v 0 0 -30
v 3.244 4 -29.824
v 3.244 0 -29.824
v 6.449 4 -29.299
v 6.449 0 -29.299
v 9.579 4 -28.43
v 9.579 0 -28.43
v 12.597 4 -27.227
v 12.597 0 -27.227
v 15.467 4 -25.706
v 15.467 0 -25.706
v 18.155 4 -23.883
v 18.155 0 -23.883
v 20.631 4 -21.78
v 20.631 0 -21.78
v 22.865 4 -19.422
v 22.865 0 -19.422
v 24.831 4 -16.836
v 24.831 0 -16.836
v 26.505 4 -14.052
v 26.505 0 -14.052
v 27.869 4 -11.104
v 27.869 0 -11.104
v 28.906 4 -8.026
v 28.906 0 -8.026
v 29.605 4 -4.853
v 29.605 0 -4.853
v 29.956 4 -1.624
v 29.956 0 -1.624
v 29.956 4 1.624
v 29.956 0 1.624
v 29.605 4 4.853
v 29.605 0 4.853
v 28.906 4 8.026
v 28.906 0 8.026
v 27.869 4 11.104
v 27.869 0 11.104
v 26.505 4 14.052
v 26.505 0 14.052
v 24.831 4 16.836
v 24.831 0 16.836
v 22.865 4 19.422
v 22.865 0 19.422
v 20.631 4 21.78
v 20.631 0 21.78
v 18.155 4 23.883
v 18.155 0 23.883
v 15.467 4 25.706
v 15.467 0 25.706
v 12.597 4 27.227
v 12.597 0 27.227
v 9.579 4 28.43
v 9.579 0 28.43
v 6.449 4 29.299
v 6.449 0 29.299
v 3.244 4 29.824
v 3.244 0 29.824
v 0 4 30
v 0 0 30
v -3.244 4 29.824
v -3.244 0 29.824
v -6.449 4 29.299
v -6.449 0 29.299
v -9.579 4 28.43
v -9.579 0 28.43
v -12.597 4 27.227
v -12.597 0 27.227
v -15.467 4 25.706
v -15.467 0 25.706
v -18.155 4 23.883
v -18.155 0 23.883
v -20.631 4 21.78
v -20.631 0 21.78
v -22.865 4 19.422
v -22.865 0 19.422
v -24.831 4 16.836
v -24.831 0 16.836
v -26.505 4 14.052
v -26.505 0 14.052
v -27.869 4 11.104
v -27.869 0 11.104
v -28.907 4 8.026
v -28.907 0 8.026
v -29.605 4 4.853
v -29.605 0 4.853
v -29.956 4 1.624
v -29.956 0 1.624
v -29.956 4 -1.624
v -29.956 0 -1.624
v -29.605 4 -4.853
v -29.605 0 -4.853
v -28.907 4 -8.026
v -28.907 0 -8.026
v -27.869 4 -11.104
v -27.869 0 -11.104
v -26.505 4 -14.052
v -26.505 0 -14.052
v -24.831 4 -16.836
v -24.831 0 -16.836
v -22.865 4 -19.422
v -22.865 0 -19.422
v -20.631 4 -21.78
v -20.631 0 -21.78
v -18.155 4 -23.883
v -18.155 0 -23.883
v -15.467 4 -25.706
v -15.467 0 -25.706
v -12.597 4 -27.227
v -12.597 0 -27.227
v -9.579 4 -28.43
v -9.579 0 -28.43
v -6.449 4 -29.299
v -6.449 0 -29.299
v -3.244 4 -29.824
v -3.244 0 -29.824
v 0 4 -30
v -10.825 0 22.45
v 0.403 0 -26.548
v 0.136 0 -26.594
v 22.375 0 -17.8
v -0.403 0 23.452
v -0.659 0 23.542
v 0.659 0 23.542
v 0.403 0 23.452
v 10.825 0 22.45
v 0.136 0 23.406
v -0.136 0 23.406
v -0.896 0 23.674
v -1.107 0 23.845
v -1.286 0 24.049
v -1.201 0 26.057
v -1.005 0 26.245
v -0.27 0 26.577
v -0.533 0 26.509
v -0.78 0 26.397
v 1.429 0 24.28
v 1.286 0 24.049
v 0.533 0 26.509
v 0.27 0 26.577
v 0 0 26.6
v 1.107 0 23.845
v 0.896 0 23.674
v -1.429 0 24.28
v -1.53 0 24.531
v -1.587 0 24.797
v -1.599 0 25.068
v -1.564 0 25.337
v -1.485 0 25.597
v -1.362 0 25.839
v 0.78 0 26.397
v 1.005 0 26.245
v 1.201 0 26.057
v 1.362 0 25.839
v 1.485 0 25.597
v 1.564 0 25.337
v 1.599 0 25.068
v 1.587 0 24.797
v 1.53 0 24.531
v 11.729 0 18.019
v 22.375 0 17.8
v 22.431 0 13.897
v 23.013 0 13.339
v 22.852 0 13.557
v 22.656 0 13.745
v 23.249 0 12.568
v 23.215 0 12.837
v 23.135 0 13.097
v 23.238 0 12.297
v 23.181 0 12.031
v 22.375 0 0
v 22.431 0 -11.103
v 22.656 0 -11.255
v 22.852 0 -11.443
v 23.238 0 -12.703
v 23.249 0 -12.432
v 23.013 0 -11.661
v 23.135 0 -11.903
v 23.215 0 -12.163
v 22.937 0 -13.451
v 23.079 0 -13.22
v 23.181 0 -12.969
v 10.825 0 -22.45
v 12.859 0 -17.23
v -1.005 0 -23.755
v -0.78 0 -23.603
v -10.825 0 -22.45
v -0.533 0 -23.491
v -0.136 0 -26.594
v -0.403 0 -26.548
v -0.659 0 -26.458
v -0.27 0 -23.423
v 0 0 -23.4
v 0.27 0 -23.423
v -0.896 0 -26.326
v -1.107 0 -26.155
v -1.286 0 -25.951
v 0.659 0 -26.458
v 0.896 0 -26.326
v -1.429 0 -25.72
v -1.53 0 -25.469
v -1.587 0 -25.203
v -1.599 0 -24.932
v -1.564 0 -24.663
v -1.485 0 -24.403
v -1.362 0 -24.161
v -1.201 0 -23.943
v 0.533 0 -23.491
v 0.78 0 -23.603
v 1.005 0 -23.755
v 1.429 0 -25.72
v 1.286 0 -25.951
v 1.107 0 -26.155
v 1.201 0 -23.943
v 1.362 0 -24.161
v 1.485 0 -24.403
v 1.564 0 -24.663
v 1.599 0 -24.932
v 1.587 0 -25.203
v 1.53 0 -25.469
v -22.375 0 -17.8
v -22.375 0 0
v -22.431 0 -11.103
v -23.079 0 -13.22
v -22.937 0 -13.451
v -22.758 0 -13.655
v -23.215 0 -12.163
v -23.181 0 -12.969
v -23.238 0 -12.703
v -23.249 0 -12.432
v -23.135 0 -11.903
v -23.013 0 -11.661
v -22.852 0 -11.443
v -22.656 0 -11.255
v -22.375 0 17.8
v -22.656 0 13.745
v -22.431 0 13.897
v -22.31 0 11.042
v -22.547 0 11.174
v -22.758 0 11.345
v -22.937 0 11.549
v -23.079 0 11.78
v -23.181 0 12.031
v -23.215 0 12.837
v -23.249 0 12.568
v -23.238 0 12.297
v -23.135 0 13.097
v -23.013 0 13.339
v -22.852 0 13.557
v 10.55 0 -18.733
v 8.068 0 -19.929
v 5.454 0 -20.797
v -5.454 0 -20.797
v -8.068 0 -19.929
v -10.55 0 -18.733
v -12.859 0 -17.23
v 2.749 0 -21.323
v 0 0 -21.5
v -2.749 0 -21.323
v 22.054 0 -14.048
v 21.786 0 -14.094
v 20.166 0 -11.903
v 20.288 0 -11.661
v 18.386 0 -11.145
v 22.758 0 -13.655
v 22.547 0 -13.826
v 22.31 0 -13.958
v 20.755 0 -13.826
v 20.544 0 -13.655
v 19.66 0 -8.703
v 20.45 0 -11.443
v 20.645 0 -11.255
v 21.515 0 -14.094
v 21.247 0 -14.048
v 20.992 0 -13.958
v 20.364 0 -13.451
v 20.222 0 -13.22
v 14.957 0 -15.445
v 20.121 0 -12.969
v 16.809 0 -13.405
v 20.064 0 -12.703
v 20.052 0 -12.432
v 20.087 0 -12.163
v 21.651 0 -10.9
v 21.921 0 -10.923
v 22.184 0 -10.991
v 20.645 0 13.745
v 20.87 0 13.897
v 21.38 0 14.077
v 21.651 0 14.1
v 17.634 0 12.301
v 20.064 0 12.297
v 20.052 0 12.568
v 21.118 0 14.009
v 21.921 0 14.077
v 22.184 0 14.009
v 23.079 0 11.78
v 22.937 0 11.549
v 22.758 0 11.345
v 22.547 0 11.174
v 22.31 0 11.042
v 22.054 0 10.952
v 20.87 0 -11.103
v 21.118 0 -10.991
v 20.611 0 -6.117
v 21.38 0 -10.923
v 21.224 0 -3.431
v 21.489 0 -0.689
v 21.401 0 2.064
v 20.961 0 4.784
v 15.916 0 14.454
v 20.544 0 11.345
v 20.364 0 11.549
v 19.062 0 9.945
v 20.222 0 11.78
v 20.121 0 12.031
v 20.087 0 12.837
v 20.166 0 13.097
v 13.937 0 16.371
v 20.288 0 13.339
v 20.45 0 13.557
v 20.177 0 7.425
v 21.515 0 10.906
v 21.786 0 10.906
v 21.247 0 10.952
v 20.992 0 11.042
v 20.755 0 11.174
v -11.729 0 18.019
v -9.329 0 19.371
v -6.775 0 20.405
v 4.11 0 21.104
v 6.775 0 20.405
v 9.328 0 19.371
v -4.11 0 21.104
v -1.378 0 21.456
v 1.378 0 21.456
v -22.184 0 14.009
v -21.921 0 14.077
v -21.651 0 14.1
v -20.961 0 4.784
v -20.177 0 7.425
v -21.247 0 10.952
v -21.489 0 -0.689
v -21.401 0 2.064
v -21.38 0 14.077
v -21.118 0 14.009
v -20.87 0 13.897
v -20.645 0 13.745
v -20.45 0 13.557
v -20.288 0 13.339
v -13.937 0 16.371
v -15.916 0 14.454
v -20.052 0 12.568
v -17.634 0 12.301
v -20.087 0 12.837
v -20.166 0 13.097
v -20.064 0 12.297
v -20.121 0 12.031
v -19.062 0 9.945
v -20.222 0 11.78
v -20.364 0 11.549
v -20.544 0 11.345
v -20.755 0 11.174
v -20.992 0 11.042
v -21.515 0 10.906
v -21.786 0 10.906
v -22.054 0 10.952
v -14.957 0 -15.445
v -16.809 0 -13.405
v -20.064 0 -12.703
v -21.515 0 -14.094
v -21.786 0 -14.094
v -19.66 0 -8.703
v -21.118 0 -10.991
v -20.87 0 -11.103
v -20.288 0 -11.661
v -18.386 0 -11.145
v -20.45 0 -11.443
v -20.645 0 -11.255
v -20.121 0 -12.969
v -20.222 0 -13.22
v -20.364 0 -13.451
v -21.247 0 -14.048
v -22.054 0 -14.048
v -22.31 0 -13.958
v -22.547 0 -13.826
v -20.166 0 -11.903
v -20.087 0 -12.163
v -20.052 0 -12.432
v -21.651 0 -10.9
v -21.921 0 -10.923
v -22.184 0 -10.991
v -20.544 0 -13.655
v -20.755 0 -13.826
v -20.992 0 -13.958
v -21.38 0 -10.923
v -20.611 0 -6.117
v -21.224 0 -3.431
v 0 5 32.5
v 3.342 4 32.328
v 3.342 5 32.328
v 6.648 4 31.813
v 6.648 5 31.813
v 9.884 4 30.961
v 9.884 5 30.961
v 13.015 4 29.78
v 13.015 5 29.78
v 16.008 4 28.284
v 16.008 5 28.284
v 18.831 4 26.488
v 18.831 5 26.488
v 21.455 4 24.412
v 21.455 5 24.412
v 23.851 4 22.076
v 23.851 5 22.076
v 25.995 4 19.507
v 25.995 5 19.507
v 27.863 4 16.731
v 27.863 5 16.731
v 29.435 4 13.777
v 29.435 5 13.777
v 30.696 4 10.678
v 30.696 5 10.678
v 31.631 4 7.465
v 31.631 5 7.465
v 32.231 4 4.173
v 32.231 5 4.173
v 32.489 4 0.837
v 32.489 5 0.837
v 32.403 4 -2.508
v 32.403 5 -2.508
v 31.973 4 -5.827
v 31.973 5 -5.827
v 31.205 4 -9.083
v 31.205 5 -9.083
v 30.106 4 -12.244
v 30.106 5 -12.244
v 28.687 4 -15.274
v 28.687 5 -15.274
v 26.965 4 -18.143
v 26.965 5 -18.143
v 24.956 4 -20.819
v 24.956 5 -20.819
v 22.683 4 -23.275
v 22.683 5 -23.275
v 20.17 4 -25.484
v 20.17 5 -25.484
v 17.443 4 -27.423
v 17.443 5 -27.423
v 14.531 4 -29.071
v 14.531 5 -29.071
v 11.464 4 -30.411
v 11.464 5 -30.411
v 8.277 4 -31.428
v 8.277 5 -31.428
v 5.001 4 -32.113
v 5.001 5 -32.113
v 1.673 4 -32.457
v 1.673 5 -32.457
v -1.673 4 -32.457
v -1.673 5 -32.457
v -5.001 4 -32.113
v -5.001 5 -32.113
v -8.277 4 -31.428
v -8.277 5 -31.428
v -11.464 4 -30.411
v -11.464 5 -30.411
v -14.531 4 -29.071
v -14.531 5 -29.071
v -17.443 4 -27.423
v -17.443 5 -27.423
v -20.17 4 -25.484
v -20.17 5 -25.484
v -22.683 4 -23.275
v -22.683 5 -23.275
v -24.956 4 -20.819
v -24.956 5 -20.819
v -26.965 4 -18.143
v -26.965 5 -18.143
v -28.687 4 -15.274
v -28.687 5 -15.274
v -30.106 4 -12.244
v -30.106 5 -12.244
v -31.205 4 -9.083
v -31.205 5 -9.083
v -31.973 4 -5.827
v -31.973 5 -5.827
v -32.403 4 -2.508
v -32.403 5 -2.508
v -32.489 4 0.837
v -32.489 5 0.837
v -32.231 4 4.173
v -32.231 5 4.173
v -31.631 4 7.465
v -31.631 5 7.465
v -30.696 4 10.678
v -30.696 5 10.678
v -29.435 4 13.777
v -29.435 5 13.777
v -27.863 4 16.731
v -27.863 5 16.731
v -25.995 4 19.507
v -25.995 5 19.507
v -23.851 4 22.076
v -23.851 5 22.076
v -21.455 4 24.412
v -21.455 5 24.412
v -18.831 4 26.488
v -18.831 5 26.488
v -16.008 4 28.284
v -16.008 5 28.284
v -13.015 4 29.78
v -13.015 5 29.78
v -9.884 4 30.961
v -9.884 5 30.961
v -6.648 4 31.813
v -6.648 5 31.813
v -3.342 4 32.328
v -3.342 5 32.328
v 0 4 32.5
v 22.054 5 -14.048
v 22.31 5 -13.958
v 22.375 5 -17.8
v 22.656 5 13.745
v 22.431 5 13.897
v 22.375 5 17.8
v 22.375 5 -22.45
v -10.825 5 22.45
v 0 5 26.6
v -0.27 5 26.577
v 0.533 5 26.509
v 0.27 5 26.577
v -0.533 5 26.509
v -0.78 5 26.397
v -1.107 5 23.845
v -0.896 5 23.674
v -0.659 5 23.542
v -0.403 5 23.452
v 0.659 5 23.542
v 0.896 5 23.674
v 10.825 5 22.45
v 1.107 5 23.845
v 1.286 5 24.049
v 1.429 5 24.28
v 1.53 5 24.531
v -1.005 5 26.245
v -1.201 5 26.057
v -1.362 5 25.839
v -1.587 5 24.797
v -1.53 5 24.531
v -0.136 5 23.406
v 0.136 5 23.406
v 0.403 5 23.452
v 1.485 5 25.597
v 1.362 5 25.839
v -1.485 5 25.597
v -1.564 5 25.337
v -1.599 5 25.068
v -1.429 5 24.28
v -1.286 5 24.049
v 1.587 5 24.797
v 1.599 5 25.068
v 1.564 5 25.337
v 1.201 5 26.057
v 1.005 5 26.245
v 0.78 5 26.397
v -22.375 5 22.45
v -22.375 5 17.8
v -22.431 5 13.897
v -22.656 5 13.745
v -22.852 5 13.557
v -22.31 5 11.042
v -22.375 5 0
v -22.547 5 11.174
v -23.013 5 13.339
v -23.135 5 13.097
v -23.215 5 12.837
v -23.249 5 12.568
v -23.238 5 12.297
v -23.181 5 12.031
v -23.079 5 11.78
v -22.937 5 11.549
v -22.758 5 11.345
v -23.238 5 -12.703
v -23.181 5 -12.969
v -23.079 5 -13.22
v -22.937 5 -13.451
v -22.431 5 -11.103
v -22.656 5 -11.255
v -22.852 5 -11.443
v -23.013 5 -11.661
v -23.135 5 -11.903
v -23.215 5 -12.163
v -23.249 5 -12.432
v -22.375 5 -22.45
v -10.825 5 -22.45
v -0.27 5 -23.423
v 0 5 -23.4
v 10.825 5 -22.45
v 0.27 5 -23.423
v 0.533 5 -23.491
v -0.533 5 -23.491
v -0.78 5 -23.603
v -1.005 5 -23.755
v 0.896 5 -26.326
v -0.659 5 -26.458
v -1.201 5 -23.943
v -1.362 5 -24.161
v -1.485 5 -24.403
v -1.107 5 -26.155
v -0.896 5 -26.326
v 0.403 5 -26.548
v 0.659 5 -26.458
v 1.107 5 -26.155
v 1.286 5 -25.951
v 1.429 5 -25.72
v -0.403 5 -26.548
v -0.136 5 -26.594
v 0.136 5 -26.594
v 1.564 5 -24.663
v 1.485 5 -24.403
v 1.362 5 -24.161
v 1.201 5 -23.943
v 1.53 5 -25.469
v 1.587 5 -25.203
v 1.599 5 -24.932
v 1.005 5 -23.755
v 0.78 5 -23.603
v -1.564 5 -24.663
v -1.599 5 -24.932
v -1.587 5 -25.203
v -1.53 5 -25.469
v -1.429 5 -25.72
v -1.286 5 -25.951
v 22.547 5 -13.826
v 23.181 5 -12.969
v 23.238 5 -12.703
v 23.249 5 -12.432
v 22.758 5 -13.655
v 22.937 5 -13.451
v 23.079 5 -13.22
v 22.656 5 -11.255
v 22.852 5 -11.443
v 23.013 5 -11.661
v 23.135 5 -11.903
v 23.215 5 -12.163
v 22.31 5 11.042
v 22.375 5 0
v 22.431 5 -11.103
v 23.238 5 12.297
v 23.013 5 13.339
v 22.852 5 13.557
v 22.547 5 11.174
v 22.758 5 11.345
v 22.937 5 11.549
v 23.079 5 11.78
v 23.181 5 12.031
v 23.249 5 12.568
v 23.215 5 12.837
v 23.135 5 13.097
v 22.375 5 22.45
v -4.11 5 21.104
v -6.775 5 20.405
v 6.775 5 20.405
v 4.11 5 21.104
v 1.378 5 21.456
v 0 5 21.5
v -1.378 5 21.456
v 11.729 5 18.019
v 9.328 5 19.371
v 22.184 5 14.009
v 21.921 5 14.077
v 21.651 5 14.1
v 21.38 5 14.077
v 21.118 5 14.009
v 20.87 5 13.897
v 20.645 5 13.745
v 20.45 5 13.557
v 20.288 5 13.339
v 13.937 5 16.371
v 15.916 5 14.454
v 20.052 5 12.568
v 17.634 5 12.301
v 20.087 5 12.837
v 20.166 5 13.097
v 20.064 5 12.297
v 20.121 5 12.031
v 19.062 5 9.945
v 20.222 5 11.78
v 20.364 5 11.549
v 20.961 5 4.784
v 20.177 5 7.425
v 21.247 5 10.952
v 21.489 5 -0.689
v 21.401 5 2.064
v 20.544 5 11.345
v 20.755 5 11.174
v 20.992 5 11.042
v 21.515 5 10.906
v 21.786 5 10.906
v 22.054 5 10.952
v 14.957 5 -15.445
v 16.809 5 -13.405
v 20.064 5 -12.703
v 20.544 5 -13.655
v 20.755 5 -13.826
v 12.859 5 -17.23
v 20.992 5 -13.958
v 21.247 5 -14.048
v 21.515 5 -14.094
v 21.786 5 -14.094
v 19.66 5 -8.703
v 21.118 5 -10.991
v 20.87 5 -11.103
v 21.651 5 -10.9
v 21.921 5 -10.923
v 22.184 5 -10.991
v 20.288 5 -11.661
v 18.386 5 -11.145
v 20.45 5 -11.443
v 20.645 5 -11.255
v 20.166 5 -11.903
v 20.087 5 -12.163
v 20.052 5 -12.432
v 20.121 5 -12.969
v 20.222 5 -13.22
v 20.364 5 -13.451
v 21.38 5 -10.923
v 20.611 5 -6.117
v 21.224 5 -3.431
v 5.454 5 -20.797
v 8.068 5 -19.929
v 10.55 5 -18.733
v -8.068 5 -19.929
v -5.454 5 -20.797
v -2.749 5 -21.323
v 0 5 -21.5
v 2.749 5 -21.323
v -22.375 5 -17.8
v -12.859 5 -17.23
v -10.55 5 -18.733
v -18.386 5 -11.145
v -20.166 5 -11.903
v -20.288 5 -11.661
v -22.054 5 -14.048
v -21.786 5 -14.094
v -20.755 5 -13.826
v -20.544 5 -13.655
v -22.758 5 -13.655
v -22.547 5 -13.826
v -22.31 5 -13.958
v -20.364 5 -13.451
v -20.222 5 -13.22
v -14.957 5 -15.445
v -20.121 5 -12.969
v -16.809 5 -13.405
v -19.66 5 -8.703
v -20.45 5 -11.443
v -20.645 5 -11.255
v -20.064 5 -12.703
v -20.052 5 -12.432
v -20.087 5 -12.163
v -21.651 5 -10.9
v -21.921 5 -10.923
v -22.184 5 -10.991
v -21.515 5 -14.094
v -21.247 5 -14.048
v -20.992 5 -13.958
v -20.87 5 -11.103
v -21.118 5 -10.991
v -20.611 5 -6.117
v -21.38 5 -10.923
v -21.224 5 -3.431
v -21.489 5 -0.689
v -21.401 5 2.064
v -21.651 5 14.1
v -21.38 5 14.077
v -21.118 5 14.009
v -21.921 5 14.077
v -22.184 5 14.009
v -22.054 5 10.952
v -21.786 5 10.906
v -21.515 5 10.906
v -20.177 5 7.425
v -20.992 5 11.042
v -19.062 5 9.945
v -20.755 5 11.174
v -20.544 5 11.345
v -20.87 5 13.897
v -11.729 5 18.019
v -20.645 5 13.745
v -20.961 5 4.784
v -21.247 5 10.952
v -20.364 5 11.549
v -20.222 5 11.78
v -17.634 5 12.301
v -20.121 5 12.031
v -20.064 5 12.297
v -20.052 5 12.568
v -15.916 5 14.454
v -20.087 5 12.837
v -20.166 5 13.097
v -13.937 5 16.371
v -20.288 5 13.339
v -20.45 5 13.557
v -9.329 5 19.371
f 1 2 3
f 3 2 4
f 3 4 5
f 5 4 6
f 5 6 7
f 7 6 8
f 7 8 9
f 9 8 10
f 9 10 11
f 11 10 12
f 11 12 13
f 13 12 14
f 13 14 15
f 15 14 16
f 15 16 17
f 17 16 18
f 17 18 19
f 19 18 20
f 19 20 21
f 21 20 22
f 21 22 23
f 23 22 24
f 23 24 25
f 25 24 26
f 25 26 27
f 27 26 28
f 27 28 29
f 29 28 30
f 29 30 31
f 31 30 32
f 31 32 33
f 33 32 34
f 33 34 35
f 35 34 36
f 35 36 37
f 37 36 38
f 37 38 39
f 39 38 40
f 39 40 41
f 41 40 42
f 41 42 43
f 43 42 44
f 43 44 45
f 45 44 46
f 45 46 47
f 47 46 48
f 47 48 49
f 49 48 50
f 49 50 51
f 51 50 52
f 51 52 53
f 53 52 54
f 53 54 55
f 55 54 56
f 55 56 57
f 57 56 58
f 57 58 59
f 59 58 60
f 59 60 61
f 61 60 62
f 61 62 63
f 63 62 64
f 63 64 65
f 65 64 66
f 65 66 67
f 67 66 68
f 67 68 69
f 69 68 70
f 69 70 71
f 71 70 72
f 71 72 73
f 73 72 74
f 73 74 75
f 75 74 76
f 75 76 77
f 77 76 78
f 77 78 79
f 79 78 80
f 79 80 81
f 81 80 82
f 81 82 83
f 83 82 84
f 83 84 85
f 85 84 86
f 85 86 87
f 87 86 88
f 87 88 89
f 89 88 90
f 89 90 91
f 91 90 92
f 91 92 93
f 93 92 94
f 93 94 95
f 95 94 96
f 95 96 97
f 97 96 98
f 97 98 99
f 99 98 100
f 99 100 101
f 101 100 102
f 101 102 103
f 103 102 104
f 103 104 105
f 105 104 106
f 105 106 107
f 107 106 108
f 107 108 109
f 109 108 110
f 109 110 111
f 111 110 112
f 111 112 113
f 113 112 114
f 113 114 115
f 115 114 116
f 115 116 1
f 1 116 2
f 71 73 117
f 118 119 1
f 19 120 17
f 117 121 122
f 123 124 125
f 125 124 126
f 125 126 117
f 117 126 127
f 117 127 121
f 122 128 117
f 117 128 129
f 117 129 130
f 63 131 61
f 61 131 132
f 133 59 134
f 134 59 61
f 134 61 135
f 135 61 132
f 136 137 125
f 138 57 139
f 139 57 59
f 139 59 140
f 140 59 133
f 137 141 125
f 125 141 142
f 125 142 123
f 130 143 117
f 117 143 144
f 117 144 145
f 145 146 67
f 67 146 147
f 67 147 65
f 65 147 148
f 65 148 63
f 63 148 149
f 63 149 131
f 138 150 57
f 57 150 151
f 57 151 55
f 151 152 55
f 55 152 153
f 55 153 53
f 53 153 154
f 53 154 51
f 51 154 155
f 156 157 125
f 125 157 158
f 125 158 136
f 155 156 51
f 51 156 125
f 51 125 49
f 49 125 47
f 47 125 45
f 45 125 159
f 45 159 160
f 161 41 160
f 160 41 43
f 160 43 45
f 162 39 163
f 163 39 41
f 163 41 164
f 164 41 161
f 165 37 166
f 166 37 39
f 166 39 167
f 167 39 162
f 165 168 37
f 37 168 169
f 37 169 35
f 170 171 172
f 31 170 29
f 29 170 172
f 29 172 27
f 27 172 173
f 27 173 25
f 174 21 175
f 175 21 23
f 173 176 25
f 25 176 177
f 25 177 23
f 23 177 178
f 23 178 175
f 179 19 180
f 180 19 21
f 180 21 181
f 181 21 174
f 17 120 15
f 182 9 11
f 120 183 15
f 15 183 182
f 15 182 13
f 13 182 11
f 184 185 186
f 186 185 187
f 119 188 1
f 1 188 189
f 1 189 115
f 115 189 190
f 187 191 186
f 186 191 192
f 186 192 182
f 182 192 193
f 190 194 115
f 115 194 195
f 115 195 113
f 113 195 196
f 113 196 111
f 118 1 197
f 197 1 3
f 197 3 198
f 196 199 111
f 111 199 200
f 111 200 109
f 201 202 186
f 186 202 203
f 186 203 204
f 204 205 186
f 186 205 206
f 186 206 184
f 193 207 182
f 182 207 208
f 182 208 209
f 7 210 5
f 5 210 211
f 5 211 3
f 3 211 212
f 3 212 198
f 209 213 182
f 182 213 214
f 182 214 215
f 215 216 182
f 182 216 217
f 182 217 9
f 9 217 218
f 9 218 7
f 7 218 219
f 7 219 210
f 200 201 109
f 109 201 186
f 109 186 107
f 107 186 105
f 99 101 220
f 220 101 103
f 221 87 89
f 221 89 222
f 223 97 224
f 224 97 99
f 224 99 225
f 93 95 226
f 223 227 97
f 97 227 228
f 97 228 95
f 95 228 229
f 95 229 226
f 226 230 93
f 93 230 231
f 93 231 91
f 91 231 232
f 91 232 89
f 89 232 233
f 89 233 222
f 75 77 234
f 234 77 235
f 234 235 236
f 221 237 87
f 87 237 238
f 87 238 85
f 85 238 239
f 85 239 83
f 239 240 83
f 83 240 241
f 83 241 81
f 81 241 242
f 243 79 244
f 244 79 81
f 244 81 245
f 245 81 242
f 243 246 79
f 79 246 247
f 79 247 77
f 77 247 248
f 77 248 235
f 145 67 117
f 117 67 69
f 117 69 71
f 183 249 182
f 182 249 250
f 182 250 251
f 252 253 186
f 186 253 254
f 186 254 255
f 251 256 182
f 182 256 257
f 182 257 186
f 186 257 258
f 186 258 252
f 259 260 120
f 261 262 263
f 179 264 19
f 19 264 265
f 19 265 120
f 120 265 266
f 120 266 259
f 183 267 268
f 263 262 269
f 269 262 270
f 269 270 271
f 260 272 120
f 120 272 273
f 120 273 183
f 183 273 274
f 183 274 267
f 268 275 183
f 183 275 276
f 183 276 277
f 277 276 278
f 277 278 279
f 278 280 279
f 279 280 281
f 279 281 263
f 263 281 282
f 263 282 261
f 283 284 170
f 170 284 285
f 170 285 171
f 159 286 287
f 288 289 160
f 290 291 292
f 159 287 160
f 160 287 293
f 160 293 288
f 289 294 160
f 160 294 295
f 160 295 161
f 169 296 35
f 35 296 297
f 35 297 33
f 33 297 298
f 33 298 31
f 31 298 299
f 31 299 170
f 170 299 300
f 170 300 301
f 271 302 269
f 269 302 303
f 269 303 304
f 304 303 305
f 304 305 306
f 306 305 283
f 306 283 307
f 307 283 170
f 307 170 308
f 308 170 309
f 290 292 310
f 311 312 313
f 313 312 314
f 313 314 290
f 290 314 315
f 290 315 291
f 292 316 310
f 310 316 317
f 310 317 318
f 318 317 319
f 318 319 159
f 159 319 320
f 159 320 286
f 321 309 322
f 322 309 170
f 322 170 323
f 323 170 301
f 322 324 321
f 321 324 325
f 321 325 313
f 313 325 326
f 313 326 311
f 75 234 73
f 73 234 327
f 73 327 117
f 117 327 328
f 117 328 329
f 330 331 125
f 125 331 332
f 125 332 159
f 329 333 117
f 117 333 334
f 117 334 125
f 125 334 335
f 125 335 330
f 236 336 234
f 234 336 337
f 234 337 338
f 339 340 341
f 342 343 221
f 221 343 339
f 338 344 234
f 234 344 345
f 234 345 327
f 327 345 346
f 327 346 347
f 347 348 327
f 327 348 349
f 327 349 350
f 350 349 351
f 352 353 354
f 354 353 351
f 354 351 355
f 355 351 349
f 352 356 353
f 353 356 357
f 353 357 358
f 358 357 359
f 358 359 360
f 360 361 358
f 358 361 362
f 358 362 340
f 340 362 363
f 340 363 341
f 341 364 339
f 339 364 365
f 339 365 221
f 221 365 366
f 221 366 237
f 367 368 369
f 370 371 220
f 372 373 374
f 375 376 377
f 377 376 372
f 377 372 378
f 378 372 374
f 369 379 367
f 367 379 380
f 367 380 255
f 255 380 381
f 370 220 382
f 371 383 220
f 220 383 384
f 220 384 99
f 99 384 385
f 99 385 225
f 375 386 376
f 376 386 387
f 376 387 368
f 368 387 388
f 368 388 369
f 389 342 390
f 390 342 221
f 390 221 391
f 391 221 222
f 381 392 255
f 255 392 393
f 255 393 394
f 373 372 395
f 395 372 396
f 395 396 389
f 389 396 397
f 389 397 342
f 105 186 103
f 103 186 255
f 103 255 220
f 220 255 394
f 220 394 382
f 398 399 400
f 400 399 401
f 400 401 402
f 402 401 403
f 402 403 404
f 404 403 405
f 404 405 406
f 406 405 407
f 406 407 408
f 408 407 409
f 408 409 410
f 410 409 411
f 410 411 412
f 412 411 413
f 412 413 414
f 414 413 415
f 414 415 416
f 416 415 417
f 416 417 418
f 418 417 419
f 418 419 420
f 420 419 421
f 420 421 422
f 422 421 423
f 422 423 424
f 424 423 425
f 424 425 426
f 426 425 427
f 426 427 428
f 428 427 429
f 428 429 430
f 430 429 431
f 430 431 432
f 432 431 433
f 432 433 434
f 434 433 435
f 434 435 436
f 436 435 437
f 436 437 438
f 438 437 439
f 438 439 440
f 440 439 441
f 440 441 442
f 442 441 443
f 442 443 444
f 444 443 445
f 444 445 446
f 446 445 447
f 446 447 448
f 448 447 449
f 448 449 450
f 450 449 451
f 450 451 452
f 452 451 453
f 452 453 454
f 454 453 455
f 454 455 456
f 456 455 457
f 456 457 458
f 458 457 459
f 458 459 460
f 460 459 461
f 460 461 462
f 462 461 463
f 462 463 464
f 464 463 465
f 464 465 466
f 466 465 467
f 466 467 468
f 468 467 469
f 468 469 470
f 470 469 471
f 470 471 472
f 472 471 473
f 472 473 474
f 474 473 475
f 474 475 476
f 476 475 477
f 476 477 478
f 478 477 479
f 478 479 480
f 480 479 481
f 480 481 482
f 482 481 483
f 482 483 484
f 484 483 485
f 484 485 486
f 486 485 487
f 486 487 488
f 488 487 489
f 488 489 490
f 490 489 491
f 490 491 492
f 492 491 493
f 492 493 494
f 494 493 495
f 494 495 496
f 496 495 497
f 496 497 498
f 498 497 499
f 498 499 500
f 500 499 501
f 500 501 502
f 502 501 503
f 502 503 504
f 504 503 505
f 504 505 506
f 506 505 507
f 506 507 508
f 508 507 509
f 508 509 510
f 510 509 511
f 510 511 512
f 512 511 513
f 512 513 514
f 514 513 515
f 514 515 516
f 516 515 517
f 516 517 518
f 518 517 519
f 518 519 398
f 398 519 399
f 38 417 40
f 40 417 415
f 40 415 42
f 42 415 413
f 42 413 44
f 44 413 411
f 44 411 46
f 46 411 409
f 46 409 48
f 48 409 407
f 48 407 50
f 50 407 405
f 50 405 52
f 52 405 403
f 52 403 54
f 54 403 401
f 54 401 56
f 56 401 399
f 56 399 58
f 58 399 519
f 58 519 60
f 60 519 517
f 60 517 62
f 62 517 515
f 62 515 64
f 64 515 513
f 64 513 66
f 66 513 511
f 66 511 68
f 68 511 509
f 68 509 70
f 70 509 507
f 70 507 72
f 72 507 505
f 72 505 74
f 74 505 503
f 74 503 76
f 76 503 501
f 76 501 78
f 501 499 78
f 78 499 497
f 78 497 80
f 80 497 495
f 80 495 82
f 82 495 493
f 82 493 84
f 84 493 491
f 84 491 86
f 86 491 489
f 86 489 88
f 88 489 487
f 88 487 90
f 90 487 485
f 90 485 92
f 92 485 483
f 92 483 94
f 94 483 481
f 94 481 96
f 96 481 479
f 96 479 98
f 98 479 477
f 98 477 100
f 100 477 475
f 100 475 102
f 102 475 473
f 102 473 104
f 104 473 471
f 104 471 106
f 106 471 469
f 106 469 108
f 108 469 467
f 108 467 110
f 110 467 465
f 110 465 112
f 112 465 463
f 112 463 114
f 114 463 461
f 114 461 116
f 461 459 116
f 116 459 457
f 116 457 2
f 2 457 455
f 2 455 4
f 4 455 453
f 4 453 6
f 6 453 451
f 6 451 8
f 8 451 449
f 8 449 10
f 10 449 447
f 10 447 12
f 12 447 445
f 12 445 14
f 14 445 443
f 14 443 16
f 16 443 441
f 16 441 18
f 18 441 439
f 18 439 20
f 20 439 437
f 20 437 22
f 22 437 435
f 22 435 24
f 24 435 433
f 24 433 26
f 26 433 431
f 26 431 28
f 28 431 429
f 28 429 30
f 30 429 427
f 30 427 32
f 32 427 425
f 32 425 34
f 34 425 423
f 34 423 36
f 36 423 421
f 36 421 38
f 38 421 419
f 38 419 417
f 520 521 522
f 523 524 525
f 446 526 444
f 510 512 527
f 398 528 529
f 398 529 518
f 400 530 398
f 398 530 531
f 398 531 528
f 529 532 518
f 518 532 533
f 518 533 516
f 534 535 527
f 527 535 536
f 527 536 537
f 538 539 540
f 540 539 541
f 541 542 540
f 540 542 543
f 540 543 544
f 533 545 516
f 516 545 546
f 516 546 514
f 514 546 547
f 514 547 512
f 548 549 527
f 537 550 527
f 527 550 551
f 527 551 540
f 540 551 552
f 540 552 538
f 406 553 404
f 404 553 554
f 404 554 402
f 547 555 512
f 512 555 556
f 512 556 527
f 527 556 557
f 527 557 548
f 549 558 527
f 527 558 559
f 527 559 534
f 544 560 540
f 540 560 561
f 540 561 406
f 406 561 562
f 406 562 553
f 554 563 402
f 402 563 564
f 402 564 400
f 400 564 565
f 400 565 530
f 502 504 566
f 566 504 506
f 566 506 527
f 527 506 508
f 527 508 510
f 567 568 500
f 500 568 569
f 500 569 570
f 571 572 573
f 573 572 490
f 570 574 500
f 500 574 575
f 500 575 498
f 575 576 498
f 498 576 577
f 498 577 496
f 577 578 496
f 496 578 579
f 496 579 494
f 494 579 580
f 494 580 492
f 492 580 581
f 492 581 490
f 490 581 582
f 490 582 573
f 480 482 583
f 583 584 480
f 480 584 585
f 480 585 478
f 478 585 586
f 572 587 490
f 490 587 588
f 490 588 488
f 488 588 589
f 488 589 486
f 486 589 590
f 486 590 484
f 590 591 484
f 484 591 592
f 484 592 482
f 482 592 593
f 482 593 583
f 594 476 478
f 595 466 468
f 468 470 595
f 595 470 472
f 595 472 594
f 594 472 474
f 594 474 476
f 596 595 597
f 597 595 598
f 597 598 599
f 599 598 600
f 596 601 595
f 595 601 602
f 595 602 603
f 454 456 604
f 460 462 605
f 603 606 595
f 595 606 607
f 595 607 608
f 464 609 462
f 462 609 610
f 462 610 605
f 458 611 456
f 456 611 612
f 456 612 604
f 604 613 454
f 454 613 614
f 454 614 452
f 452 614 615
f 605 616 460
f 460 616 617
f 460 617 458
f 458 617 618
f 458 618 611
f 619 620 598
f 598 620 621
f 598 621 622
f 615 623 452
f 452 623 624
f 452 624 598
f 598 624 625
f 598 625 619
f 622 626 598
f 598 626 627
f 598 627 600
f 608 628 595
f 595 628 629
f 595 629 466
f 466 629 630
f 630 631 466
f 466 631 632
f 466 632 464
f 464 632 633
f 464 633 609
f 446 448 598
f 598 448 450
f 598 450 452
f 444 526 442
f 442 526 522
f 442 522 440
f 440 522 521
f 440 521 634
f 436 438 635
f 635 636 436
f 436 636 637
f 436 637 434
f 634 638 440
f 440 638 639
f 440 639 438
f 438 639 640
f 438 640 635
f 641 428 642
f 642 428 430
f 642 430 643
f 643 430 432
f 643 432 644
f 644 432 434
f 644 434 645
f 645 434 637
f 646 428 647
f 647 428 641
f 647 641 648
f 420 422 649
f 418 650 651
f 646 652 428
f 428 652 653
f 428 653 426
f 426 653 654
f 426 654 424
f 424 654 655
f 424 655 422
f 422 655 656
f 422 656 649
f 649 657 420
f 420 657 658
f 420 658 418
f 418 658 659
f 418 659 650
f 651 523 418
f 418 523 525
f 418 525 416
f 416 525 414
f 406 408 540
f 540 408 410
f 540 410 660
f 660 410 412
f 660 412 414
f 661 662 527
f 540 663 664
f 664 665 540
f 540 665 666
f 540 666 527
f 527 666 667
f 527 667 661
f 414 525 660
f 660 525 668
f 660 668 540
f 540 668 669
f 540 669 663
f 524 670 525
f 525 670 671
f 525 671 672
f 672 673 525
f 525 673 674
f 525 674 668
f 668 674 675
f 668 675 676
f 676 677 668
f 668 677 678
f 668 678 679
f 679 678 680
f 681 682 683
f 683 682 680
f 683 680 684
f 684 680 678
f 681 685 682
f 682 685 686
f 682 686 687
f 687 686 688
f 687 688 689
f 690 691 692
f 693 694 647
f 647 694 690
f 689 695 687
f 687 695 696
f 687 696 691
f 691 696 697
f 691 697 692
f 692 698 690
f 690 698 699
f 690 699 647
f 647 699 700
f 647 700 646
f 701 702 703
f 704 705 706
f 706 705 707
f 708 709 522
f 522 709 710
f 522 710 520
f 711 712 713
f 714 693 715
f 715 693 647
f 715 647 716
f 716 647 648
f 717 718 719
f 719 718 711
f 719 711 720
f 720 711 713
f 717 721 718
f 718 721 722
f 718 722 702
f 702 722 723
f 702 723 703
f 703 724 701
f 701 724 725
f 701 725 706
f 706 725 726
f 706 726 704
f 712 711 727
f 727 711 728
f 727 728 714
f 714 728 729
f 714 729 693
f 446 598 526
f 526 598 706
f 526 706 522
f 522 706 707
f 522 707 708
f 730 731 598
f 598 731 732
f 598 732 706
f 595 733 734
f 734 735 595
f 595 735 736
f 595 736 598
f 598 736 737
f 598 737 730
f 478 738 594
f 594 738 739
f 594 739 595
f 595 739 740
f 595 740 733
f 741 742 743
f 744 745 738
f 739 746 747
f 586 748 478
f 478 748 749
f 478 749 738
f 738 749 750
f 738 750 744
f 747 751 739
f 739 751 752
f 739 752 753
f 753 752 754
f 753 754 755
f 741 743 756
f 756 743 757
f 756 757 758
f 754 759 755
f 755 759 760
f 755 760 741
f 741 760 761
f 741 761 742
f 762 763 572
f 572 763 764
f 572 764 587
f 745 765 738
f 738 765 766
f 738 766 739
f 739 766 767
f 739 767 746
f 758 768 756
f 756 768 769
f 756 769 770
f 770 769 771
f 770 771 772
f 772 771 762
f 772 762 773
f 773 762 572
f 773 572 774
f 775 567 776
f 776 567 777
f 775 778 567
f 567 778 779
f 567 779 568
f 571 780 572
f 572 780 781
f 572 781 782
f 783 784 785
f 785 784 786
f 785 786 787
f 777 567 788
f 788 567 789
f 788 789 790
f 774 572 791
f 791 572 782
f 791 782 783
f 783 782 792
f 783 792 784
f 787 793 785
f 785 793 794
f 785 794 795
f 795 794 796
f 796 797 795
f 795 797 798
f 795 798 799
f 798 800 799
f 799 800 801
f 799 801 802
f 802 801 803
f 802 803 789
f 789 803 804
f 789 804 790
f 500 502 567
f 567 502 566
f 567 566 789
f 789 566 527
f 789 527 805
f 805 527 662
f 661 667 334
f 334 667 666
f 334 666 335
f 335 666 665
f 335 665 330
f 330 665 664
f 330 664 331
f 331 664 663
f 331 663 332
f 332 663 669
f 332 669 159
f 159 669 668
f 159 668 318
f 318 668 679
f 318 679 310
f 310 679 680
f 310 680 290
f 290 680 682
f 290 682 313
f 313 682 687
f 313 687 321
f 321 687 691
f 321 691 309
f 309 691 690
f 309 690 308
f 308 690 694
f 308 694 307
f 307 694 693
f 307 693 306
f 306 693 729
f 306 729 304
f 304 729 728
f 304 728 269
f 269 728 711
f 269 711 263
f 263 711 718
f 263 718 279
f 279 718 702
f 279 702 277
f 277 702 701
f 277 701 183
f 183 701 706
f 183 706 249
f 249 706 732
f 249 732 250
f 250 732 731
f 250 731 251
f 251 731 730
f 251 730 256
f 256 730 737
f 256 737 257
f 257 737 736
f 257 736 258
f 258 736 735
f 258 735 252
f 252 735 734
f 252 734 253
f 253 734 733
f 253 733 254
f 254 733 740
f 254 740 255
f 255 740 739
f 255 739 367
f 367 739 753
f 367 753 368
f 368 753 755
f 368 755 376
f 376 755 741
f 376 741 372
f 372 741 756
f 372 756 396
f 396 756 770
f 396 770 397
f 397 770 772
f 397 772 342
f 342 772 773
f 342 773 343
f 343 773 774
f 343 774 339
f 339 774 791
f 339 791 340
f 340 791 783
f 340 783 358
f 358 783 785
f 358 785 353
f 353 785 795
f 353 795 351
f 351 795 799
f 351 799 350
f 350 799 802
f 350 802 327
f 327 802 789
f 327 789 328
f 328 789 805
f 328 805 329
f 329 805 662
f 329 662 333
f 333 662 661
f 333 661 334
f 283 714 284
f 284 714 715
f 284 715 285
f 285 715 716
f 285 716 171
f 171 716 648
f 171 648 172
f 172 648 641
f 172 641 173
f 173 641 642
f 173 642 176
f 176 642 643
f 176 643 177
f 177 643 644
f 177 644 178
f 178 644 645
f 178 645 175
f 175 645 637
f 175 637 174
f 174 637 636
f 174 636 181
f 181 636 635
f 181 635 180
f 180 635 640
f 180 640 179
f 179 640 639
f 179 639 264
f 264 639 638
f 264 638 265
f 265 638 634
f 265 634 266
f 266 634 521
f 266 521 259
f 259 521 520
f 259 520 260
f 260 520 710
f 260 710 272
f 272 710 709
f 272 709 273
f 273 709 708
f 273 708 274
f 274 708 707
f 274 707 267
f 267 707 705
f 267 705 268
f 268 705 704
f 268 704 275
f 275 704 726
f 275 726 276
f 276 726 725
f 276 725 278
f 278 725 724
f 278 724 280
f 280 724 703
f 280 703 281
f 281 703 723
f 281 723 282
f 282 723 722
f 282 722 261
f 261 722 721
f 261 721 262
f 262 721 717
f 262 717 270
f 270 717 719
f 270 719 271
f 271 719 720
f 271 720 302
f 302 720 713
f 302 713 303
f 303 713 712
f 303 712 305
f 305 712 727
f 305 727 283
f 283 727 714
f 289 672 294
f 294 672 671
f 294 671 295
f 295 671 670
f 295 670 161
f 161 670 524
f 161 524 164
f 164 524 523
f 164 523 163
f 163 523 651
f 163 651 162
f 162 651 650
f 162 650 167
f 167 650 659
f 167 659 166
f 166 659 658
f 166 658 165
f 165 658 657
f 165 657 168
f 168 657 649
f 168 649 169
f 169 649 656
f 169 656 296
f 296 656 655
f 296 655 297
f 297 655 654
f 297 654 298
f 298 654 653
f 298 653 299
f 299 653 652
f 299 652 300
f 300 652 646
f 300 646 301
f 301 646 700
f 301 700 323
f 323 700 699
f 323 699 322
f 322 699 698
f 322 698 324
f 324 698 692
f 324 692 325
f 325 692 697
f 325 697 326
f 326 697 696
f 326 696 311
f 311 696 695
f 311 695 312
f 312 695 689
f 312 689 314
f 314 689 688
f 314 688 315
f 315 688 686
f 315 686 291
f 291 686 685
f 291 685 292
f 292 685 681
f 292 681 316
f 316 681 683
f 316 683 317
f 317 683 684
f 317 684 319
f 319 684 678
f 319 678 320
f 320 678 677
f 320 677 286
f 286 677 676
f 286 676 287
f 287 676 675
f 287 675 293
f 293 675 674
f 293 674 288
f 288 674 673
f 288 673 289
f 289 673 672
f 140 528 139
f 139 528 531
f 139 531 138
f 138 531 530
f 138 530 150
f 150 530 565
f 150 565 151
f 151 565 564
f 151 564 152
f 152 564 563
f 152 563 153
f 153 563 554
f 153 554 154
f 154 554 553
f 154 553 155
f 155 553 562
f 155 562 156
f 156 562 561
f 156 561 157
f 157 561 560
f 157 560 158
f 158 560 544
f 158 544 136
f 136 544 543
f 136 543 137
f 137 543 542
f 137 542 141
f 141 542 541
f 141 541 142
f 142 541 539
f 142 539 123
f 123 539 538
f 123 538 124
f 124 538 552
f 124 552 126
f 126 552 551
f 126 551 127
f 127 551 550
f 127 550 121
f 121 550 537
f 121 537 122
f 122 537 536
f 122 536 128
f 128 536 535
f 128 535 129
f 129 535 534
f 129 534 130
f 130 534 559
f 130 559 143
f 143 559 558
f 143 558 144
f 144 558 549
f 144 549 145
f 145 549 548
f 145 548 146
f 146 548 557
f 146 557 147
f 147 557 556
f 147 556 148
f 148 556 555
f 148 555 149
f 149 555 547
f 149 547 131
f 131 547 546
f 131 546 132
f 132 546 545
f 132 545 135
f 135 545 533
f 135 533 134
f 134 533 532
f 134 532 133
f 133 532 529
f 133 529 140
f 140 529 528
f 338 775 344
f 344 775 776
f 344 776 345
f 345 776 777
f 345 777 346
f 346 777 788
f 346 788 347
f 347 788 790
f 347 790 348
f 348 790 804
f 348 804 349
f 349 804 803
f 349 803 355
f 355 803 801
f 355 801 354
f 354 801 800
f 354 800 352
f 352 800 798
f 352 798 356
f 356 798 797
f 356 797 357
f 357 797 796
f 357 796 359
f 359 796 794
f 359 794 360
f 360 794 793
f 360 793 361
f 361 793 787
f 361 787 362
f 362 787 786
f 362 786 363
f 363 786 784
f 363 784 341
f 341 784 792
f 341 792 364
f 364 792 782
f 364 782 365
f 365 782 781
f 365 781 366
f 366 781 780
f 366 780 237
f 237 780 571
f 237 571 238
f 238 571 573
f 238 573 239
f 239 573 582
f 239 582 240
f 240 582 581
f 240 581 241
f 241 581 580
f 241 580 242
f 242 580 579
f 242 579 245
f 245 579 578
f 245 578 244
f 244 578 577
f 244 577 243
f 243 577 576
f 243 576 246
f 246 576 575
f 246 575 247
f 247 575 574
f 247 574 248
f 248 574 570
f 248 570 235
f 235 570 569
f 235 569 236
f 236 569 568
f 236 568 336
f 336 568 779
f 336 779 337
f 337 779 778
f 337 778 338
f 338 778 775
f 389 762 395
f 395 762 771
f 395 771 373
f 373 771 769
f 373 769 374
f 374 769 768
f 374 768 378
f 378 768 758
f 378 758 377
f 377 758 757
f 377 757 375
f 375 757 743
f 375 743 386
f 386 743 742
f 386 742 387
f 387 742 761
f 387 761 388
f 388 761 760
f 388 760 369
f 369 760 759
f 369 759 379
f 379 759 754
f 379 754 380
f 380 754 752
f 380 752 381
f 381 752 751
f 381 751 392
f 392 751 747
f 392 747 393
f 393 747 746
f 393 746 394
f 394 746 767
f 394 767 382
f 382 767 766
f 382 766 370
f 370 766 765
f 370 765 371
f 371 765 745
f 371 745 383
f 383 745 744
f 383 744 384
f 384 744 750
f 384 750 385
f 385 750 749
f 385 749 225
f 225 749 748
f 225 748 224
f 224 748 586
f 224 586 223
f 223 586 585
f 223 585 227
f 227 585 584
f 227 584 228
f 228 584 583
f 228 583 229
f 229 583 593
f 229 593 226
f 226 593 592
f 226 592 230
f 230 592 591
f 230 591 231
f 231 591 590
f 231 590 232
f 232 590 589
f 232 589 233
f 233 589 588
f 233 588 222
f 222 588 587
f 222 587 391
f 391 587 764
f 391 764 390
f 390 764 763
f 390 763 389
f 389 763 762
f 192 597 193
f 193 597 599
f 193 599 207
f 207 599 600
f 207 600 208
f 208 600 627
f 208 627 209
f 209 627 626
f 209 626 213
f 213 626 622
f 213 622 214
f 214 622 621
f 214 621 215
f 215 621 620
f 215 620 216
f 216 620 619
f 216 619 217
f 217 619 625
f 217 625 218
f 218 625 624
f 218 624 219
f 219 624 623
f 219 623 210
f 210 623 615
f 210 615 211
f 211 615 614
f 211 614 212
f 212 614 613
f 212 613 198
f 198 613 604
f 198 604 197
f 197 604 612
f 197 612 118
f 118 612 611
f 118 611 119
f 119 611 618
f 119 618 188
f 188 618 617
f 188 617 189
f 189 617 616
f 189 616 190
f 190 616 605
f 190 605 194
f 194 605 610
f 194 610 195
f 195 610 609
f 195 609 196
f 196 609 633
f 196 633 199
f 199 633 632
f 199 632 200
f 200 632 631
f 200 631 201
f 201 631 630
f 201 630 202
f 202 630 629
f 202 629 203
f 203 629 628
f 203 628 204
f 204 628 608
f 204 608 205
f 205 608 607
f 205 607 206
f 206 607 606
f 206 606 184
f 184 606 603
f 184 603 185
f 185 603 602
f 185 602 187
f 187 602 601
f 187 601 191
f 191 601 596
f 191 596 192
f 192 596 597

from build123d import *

# Parameters (mm, degrees)
SKETCH1_R           = 30
BOSS_EXTRUDE1_DEPTH = 5
SKETCH2_R           = 32.5
BOSS_EXTRUDE2_DEPTH = 1
SKETCH3_R           = 21.5
CUT_EXTRUDE1_DEPTH  = 25
SKETCH4_R           = 1.6
CUT_EXTRUDE2_DEPTH  = 25


with BuildPart() as part:
    # Sketch1 → Boss-Extrude1 (new body)
    with BuildSketch(Plane(origin=(0, 0, 0), x_dir=(1, 0, 0), z_dir=(0, 1, 0))):
        with Locations(Location((0, 0, 0), (0, 0, 270))):
            Circle(SKETCH1_R)
    extrude(amount=BOSS_EXTRUDE1_DEPTH)

    # Sketch2 → Boss-Extrude2 (add)
    with BuildSketch(Plane(origin=(0, 5, 0), x_dir=(1, 0, 0), z_dir=(0, 1, 0))):
        with Locations(Location((0, 0, 0), (0, 0, 270))):
            Circle(SKETCH2_R)
    extrude(amount=-BOSS_EXTRUDE2_DEPTH)

    # Sketch3 → Cut-Extrude1 (cut)
    with BuildSketch(Plane.XZ):
        with Locations(Location((0, 0, 0), (0, 0, 270))):
            Circle(SKETCH3_R)
    extrude(amount=-CUT_EXTRUDE1_DEPTH, mode=Mode.SUBTRACT)

    # Sketch4 → Cut-Extrude2 (cut)
    with BuildSketch(Plane(origin=(0, 5, 0), x_dir=(1, 0, 0), z_dir=(0, 1, 0))):
        with Locations(Location((0, 25, 0), (0, 0, 270))):
            Circle(SKETCH4_R)
        with Locations(Location((21.650635095, 12.5, 0), (0, 0, 270))):
            Circle(SKETCH4_R)
        with Locations(Location((21.650635095, -12.5, 0), (0, 0, 270))):
            Circle(SKETCH4_R)
        with Locations(Location((0, -25, 0), (0, 0, 270))):
            Circle(SKETCH4_R)
        with Locations(Location((-21.650635095, -12.5, 0), (0, 0, 270))):
            Circle(SKETCH4_R)
        with Locations(Location((-21.650635095, 12.5, 0), (0, 0, 270))):
            Circle(SKETCH4_R)
    extrude(amount=-CUT_EXTRUDE2_DEPTH, mode=Mode.SUBTRACT)


solid = part.part
